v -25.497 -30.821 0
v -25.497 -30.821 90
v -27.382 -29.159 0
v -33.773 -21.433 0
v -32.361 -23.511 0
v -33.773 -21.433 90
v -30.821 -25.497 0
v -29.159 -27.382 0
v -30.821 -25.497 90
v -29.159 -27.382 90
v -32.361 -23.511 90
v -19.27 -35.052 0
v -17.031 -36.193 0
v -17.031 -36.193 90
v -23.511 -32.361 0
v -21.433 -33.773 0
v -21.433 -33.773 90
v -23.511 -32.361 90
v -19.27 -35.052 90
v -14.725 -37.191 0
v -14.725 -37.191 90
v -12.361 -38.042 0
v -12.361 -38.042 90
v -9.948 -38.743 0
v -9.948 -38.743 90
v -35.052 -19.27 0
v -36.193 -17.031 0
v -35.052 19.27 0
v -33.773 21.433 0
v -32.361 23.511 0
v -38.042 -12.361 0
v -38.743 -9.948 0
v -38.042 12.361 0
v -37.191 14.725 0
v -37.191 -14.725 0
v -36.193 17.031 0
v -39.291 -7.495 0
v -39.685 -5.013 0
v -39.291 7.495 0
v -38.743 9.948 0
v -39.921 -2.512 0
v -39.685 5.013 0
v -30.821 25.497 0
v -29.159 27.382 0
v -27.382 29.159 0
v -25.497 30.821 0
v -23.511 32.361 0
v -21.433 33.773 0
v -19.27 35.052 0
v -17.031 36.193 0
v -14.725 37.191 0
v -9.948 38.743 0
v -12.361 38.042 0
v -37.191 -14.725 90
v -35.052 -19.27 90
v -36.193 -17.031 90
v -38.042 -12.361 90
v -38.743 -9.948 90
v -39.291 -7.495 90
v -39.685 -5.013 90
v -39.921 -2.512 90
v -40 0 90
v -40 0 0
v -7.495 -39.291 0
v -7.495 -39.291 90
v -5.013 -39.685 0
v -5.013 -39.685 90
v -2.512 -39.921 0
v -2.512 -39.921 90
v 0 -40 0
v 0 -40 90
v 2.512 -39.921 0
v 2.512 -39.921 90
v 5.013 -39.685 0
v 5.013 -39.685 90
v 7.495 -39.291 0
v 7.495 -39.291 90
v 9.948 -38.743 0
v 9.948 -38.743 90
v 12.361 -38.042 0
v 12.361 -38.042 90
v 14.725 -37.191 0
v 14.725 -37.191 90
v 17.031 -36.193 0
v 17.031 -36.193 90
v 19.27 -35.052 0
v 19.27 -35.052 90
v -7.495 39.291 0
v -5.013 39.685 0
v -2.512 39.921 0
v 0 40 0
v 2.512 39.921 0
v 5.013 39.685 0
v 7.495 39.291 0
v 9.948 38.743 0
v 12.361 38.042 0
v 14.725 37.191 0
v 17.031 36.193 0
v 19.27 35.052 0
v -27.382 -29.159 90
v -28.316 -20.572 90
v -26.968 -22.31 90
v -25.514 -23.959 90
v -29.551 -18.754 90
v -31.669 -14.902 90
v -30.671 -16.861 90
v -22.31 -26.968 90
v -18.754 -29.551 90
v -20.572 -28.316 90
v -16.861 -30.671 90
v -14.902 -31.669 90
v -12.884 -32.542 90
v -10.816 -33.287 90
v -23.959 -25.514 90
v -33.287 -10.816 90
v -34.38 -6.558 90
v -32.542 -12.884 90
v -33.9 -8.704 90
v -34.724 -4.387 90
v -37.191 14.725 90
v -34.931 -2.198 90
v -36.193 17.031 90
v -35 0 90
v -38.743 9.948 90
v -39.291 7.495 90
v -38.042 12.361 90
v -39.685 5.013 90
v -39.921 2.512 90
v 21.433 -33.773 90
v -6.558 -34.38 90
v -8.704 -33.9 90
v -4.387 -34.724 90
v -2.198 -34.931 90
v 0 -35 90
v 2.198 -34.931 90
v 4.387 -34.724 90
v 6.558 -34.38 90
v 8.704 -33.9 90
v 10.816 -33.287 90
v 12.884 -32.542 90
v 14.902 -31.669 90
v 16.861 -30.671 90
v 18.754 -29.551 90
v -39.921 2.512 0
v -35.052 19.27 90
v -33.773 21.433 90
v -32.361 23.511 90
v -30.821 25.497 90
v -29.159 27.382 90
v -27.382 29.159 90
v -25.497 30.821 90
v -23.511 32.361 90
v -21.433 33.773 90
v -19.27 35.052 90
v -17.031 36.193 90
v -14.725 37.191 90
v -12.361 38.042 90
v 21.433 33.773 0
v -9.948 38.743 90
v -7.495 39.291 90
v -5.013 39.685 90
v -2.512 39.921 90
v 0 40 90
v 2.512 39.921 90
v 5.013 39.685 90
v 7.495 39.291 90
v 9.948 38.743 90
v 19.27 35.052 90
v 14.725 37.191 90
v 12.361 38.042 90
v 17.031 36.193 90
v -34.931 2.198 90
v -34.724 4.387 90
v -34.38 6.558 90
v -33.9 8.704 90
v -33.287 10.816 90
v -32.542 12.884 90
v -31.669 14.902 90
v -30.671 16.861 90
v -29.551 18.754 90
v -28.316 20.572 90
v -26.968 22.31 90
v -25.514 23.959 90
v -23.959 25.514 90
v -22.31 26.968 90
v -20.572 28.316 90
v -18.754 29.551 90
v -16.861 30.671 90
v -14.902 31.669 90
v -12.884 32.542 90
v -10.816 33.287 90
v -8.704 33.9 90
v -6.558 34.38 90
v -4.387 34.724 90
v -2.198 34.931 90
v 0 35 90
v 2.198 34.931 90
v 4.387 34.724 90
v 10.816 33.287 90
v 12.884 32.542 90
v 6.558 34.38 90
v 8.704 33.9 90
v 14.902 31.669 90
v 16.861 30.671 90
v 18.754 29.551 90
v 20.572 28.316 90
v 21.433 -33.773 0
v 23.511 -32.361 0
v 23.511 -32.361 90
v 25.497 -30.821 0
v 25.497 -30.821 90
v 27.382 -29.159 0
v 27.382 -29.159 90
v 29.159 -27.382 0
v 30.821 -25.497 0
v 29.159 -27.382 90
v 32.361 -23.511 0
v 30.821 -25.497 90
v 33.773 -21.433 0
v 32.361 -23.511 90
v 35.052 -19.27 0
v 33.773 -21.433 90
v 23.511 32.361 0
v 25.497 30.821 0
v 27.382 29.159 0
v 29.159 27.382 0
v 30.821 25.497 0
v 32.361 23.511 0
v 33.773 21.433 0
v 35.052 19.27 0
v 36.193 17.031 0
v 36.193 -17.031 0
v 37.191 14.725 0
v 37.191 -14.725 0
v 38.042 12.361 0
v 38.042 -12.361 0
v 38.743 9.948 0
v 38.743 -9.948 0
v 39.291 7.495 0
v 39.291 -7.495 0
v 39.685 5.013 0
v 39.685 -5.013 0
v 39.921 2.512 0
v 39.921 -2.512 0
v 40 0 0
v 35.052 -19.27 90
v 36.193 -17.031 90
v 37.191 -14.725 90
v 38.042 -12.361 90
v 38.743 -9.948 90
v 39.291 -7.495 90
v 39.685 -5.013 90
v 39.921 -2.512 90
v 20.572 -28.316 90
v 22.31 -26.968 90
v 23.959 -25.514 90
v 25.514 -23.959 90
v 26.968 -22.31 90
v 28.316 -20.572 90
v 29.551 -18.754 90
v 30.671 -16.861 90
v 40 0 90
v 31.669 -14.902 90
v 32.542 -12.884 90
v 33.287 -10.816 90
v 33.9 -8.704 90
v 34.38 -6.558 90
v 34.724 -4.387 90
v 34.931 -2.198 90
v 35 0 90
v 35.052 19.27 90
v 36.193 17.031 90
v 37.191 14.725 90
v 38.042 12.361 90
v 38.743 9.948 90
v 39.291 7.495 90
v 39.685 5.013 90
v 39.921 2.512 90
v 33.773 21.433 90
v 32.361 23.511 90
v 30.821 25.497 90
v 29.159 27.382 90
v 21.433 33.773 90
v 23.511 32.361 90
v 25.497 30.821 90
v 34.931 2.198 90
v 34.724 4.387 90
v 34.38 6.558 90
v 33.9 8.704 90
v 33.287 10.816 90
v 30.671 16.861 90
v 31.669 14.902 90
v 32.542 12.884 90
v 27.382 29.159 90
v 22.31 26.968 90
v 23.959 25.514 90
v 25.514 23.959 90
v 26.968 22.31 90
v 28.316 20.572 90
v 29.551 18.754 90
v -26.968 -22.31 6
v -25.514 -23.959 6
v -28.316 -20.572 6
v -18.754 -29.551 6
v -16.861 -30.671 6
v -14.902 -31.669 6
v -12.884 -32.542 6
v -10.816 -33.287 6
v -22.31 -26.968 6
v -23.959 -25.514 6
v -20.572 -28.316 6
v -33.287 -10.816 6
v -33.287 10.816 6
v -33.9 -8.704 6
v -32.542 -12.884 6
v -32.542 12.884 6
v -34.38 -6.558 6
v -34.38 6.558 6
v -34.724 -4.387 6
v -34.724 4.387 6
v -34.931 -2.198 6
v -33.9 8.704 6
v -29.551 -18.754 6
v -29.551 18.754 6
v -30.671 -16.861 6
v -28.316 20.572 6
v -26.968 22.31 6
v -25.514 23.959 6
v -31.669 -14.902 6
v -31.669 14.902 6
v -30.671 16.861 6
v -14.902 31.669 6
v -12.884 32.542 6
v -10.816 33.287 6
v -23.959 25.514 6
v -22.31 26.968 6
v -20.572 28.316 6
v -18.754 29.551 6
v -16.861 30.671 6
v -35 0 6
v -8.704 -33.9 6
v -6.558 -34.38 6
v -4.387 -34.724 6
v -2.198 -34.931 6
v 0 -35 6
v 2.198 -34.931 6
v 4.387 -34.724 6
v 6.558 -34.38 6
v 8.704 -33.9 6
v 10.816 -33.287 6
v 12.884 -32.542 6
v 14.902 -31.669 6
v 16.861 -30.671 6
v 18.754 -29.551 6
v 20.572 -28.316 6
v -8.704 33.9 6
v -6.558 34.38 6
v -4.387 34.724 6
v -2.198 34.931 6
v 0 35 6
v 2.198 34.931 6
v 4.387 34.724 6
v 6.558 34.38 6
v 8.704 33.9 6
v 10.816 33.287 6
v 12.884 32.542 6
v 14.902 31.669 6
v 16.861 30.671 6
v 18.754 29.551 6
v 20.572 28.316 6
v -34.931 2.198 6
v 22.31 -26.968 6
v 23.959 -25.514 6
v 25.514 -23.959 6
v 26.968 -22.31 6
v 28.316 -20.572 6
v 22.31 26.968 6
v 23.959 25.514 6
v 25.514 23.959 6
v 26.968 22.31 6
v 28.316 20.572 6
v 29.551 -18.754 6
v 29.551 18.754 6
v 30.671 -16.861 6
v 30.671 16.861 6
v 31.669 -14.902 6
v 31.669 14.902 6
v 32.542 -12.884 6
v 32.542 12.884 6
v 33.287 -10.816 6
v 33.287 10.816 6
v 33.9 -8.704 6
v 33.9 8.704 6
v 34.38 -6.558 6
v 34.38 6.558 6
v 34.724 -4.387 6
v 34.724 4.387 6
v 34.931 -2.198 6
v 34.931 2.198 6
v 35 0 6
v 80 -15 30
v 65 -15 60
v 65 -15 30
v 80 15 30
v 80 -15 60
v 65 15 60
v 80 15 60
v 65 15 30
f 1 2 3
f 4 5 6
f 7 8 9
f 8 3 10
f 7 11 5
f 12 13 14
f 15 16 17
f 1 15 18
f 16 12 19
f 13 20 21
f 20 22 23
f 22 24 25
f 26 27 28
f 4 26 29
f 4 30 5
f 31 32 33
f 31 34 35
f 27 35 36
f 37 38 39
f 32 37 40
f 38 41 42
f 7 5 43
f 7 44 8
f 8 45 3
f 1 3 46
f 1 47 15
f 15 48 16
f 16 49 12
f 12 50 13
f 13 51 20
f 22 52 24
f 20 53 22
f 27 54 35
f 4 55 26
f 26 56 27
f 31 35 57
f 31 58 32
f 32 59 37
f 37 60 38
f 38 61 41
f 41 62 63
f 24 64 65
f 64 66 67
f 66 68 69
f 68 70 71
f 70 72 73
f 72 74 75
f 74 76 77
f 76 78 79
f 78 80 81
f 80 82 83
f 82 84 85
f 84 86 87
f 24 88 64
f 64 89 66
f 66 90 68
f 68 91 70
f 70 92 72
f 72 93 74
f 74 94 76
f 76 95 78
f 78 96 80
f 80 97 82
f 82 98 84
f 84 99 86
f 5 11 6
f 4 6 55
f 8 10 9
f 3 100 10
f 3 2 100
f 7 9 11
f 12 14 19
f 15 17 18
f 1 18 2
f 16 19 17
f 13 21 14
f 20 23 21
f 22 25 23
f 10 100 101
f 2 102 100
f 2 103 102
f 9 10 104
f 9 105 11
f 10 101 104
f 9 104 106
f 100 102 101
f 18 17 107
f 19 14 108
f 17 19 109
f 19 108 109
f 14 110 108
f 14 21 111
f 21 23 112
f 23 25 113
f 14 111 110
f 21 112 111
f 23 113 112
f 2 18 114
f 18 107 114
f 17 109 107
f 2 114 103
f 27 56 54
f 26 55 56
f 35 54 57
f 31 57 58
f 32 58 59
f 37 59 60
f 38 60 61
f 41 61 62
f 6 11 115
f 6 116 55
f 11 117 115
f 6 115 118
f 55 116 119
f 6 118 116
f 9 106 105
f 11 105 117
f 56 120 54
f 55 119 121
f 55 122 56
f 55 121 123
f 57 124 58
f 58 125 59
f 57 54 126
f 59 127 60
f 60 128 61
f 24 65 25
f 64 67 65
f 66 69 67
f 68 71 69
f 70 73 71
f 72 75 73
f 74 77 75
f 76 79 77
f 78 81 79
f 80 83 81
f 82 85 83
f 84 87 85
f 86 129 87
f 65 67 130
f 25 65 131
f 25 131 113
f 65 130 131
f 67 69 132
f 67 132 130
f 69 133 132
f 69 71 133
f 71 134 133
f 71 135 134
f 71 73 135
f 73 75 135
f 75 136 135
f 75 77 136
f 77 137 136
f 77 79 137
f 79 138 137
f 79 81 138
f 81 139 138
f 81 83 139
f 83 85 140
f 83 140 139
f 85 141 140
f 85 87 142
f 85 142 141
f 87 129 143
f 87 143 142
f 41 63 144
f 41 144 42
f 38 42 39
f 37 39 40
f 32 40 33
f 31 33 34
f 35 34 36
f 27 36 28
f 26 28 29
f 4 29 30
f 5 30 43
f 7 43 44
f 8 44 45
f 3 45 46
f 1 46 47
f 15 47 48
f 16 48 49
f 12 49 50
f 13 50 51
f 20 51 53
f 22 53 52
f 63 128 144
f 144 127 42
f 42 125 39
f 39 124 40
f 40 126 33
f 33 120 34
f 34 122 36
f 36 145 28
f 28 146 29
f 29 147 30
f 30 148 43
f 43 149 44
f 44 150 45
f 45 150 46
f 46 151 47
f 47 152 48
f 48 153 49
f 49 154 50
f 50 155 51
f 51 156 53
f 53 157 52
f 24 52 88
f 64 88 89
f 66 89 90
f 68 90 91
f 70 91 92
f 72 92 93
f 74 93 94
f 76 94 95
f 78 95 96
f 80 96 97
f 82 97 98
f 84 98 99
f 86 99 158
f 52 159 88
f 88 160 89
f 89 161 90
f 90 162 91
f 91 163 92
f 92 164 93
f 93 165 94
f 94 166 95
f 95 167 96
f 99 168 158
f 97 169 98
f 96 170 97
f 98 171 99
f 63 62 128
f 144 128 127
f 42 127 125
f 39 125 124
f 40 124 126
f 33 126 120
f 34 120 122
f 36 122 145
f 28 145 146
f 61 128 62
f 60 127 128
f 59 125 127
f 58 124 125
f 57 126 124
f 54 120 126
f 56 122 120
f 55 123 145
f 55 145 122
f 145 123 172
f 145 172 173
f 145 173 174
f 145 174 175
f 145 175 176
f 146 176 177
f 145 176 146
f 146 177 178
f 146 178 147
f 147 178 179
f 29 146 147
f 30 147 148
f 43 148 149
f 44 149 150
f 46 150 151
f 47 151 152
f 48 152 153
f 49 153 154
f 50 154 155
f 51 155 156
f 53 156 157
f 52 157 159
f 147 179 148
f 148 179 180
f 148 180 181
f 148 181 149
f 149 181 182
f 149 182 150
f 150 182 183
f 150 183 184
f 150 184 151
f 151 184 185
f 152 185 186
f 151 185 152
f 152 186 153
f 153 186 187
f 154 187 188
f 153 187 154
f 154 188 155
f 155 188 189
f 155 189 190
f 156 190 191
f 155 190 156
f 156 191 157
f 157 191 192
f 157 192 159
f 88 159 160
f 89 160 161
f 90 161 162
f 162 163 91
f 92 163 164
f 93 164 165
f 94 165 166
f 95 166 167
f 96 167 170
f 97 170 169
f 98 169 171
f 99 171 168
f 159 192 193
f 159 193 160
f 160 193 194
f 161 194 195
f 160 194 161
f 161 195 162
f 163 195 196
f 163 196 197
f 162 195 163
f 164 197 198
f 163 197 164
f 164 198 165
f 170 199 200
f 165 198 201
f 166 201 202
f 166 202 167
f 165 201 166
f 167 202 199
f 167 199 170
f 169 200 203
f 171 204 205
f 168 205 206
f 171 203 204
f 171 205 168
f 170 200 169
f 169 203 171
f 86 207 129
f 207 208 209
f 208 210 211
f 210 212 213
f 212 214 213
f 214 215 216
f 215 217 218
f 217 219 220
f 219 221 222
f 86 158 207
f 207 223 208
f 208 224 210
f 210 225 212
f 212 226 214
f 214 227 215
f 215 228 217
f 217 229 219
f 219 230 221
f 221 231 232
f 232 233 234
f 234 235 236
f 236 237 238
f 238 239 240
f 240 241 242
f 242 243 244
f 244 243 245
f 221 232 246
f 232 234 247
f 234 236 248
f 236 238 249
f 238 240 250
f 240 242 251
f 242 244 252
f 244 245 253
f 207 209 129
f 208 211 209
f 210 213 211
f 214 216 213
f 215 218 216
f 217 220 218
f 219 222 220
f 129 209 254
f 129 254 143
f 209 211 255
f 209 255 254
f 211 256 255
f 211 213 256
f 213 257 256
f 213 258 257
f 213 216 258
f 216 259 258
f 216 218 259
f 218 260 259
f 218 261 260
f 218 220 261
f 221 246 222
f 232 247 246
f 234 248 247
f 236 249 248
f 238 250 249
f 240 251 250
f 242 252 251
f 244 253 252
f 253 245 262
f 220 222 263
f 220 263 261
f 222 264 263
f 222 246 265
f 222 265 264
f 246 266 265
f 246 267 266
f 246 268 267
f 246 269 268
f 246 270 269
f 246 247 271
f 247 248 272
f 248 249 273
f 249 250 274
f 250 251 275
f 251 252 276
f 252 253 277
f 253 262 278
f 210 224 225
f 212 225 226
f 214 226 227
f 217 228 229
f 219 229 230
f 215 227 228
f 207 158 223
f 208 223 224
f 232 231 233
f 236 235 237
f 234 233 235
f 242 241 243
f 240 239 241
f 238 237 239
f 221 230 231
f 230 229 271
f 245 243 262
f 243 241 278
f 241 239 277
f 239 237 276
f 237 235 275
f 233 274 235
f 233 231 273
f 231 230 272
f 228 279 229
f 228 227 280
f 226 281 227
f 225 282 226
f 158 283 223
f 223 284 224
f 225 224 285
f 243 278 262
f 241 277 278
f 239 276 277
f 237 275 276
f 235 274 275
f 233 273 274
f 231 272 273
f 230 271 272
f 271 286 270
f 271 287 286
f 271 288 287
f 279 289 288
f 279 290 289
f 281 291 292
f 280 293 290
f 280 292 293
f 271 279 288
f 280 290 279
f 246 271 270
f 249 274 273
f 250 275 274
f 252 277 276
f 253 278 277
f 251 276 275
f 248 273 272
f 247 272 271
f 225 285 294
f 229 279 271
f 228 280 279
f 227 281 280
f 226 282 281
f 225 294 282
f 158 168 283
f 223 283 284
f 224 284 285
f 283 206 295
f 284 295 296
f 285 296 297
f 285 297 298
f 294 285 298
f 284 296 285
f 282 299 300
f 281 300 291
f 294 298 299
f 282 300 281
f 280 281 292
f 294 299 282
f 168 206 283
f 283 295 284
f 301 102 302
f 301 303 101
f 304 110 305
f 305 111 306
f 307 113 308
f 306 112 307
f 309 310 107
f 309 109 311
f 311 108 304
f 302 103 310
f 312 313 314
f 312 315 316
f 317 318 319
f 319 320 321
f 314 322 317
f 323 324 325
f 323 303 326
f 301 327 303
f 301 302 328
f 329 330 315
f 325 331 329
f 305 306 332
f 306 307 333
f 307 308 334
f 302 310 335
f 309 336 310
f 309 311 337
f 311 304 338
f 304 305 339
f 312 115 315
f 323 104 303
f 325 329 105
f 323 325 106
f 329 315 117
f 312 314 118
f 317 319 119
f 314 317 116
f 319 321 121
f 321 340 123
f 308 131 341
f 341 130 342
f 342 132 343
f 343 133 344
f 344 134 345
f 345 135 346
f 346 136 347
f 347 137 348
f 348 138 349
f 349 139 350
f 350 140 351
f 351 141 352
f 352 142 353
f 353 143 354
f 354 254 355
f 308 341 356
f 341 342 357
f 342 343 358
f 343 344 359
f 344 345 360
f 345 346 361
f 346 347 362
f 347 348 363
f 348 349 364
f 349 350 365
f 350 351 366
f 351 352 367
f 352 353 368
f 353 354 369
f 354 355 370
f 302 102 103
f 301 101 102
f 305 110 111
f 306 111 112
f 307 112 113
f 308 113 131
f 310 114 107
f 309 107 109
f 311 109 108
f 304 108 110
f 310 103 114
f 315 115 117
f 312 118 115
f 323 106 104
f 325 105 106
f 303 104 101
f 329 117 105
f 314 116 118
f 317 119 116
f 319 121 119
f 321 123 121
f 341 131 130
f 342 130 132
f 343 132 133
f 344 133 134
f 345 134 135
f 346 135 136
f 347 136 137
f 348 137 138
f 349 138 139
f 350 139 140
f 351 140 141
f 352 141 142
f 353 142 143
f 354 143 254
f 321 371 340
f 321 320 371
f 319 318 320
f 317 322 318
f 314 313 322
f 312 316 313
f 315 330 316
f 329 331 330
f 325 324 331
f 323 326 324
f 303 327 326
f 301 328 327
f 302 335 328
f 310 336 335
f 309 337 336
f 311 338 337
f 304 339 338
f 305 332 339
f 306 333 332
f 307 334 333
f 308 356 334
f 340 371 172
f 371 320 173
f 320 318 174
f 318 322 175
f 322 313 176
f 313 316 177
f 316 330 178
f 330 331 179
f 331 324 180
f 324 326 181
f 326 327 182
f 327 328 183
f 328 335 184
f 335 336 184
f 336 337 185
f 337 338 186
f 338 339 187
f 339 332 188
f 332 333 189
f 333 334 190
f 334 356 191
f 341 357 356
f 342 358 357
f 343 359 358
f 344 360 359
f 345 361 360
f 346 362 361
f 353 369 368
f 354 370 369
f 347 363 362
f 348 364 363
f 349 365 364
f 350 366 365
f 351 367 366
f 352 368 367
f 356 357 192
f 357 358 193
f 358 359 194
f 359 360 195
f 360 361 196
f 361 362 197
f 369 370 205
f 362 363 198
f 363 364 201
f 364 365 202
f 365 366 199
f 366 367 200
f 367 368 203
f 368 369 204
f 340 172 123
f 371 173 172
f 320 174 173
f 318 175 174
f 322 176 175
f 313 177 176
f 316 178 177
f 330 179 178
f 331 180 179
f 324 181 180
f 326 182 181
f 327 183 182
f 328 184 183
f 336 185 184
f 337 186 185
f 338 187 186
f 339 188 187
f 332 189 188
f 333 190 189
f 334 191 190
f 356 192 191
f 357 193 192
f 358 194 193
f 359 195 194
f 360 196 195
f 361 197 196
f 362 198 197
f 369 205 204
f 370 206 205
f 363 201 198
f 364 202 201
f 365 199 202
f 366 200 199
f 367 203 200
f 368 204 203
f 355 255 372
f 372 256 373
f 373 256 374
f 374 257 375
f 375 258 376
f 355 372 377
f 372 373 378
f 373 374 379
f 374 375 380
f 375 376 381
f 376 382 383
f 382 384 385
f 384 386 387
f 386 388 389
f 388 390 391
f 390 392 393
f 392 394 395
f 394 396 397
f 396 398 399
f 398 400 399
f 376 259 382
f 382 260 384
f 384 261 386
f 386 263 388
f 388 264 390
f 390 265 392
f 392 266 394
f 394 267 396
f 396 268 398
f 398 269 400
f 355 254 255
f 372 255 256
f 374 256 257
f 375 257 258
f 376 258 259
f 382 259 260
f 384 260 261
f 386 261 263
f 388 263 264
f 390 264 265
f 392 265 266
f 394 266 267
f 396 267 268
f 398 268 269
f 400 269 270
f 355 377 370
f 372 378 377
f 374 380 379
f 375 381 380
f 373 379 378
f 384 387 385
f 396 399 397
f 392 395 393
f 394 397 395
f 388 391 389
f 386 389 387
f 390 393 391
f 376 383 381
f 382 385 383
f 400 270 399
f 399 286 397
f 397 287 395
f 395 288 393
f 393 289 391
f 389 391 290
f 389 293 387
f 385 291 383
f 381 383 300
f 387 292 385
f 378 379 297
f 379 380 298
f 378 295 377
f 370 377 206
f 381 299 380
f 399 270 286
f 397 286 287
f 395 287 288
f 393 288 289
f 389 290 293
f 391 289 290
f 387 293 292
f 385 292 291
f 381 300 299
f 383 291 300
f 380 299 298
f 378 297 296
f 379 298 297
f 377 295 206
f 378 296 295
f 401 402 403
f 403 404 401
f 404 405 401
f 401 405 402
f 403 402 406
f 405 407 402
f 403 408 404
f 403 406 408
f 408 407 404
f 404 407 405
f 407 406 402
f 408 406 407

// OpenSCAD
// mug with specified handle on +X side
outer_d = 80;
inner_d = 70;
height = 90;
bottom_thickness = 6;
opening_width = 25;
opening_height = 30;
handle_thickness = 15;
$fn = 100;

union() {
  // mug body
  difference() {
    cylinder(d = outer_d, h = height);
    translate([0, 0, bottom_thickness])
      cylinder(d = inner_d, h = height - bottom_thickness);
  }
  // handle
  translate([0, 0, height/2 - opening_height/2])
    linear_extrude(height = opening_height)
      union() {
        // flat side of D
        translate([outer_d/2 + opening_width, -handle_thickness])
          square([handle_thickness, 2*handle_thickness]);
        // semicircular outer side
        intersection() {
          translate([outer_d/2 + opening_width + handle_thickness, 0])
            circle(r = handle_thickness);
          translate([outer_d/2 + opening_width + handle_thickness/2, 0])
            square([handle_thickness, 2*handle_thickness], center = true);
        }
      }
}
